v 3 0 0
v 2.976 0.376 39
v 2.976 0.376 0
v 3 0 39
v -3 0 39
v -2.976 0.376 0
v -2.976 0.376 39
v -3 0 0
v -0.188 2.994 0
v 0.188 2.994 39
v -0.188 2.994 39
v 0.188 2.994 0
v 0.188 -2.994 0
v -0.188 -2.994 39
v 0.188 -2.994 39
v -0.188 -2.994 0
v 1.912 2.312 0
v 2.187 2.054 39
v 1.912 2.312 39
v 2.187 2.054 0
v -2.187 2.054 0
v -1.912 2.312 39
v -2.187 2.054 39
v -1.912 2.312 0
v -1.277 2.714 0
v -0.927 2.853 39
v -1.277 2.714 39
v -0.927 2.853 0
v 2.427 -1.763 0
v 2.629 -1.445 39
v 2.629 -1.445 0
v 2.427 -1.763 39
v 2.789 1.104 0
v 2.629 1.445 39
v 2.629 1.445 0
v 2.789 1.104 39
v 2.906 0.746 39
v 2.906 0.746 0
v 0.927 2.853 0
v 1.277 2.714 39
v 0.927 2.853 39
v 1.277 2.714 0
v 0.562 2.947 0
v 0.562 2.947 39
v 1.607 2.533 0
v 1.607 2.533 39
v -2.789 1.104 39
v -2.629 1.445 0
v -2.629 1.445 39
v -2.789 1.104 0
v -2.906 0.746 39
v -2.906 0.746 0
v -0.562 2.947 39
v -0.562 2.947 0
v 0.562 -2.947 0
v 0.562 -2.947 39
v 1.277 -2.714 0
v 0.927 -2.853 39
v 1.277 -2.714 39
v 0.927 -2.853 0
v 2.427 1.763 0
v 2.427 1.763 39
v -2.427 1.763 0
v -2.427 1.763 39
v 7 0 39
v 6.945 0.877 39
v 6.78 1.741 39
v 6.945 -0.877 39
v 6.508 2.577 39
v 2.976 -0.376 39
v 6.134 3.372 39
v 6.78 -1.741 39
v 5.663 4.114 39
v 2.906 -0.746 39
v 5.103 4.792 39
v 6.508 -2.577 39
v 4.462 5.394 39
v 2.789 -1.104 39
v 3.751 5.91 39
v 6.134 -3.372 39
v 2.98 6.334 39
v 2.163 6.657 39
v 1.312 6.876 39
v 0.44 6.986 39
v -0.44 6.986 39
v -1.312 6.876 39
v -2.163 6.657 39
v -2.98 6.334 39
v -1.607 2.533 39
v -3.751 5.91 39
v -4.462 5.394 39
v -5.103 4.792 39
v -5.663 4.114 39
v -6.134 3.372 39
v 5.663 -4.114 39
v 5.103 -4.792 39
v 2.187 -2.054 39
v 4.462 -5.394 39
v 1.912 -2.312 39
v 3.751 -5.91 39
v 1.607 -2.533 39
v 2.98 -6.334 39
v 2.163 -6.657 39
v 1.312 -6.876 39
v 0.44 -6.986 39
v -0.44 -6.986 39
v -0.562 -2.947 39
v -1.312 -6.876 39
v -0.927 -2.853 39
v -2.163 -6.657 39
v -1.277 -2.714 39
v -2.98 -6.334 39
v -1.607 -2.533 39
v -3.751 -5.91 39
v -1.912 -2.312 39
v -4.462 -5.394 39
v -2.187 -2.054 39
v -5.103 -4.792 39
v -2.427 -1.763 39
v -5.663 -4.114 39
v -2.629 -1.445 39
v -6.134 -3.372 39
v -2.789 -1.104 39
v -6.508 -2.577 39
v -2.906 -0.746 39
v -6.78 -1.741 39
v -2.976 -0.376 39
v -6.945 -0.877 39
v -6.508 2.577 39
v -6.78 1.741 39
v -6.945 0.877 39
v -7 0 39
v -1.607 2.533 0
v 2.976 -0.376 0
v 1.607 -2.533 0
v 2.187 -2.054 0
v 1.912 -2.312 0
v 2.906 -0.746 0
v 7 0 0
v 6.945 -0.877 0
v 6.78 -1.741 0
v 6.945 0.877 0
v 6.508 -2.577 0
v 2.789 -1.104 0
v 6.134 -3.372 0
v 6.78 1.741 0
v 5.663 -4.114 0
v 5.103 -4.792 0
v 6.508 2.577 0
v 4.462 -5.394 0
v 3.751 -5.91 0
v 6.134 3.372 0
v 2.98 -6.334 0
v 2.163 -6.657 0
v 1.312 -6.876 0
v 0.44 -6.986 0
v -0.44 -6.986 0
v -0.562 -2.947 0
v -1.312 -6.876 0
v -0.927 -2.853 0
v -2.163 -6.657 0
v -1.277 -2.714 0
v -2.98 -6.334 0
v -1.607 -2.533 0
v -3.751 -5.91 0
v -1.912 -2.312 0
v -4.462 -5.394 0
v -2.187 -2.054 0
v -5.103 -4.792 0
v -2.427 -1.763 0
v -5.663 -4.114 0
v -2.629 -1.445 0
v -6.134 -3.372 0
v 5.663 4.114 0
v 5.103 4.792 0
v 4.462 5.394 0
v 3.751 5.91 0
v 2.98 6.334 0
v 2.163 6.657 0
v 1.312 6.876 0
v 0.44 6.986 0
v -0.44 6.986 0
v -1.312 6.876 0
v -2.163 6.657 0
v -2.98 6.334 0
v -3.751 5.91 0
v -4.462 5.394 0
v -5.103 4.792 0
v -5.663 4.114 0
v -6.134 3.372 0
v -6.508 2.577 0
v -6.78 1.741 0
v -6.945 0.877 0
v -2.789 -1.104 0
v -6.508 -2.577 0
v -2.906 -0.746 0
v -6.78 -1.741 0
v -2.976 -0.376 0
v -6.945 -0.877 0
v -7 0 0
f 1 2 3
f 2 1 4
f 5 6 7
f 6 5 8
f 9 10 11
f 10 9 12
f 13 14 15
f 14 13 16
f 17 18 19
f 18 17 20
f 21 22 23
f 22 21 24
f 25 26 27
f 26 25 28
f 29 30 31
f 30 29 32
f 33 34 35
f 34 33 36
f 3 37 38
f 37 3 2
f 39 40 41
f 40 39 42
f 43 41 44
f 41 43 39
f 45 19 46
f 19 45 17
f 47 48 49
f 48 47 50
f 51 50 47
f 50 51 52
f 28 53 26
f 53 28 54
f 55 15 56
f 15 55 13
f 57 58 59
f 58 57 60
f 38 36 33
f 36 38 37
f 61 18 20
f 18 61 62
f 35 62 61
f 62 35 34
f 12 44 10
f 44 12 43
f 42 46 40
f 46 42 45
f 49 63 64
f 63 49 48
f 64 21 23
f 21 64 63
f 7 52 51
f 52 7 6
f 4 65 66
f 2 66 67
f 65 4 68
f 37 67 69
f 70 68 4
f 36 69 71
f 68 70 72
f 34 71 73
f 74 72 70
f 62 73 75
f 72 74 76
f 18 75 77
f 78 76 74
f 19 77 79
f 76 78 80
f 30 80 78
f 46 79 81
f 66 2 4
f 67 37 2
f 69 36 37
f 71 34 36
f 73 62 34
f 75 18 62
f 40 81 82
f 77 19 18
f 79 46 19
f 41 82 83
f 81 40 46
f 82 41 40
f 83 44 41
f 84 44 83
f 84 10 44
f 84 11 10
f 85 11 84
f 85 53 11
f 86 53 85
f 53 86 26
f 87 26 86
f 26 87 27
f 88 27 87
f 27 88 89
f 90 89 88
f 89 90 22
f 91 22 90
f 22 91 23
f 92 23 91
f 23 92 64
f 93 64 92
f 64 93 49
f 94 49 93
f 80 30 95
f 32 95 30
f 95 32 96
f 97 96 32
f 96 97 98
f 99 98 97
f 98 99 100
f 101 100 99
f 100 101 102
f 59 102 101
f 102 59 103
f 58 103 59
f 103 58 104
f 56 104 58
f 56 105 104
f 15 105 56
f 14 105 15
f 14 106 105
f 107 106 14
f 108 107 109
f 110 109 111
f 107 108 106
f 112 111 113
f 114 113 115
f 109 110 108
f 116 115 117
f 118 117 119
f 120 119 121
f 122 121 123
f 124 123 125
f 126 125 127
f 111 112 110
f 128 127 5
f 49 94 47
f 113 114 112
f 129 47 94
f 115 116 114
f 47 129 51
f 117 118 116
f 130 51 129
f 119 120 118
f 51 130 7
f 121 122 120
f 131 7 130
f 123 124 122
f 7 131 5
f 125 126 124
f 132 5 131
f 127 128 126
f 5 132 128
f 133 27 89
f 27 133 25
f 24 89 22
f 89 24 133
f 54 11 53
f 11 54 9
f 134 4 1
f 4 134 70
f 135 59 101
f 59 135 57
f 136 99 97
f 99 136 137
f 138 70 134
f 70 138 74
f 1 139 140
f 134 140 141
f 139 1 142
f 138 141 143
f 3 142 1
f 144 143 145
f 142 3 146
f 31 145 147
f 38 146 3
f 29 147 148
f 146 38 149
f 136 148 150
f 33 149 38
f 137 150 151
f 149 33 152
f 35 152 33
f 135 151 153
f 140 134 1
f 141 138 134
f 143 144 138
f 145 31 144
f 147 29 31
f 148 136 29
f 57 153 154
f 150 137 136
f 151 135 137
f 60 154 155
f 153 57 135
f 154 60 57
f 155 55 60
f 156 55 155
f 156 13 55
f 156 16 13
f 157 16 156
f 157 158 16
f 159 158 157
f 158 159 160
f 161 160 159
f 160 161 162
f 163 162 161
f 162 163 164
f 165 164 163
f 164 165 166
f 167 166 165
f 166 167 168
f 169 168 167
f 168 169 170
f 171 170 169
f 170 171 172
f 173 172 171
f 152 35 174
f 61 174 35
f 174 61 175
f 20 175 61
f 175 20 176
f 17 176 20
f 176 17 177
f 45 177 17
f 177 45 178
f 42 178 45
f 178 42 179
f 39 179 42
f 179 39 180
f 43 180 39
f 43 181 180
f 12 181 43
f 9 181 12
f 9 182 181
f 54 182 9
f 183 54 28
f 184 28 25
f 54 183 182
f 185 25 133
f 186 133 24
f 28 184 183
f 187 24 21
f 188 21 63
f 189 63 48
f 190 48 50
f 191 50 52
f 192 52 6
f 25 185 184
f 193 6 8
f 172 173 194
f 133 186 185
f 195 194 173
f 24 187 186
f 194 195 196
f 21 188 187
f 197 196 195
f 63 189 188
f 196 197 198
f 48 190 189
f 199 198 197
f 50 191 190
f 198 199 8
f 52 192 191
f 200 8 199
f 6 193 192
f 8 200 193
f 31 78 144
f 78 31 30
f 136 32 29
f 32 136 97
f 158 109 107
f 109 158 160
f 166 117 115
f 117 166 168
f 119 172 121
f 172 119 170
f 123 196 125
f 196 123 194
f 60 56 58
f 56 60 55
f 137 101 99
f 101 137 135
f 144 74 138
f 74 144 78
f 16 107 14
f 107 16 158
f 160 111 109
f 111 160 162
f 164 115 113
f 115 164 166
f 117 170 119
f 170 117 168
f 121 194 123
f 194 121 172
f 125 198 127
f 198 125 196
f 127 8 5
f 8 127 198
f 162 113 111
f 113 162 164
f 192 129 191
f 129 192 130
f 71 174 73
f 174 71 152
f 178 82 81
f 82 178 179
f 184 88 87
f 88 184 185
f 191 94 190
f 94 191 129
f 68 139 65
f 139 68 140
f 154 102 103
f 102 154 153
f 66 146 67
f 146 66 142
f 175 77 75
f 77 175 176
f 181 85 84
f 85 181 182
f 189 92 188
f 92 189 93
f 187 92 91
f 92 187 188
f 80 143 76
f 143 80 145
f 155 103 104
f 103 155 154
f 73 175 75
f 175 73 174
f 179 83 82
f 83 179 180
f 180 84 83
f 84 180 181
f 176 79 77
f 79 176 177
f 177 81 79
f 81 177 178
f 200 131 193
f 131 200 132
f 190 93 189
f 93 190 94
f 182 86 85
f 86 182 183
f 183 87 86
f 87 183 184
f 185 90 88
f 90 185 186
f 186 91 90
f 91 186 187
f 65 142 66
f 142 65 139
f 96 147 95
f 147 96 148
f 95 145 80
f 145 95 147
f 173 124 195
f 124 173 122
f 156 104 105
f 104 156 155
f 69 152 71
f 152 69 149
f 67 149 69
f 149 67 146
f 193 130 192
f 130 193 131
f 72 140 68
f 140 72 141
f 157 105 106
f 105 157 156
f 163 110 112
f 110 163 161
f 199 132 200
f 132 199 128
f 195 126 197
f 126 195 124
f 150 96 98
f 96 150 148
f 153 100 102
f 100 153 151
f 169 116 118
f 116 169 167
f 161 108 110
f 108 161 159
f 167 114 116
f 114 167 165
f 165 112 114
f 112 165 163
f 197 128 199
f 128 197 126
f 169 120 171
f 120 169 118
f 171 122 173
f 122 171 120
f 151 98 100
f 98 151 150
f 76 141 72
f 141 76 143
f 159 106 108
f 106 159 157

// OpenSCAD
$fn = 50;


difference() {
	union() {
		cylinder(h = 39, r = 7.0000000000);
	}
	union() {
		cylinder(h = 39, r = 3.0000000000);
		cylinder(h = 39, r = 3.0000000000);
		cylinder(h = 39, r = 1.5000000000);
		cylinder(h = 39, r = 1.5000000000);
		cylinder(h = 39, r = 1.5000000000);
		cylinder(h = 39, r = 1.5000000000);
		cylinder(h = 39, r = 1.5000000000);
		cylinder(h = 39, r = 1.5000000000);
	}
}
